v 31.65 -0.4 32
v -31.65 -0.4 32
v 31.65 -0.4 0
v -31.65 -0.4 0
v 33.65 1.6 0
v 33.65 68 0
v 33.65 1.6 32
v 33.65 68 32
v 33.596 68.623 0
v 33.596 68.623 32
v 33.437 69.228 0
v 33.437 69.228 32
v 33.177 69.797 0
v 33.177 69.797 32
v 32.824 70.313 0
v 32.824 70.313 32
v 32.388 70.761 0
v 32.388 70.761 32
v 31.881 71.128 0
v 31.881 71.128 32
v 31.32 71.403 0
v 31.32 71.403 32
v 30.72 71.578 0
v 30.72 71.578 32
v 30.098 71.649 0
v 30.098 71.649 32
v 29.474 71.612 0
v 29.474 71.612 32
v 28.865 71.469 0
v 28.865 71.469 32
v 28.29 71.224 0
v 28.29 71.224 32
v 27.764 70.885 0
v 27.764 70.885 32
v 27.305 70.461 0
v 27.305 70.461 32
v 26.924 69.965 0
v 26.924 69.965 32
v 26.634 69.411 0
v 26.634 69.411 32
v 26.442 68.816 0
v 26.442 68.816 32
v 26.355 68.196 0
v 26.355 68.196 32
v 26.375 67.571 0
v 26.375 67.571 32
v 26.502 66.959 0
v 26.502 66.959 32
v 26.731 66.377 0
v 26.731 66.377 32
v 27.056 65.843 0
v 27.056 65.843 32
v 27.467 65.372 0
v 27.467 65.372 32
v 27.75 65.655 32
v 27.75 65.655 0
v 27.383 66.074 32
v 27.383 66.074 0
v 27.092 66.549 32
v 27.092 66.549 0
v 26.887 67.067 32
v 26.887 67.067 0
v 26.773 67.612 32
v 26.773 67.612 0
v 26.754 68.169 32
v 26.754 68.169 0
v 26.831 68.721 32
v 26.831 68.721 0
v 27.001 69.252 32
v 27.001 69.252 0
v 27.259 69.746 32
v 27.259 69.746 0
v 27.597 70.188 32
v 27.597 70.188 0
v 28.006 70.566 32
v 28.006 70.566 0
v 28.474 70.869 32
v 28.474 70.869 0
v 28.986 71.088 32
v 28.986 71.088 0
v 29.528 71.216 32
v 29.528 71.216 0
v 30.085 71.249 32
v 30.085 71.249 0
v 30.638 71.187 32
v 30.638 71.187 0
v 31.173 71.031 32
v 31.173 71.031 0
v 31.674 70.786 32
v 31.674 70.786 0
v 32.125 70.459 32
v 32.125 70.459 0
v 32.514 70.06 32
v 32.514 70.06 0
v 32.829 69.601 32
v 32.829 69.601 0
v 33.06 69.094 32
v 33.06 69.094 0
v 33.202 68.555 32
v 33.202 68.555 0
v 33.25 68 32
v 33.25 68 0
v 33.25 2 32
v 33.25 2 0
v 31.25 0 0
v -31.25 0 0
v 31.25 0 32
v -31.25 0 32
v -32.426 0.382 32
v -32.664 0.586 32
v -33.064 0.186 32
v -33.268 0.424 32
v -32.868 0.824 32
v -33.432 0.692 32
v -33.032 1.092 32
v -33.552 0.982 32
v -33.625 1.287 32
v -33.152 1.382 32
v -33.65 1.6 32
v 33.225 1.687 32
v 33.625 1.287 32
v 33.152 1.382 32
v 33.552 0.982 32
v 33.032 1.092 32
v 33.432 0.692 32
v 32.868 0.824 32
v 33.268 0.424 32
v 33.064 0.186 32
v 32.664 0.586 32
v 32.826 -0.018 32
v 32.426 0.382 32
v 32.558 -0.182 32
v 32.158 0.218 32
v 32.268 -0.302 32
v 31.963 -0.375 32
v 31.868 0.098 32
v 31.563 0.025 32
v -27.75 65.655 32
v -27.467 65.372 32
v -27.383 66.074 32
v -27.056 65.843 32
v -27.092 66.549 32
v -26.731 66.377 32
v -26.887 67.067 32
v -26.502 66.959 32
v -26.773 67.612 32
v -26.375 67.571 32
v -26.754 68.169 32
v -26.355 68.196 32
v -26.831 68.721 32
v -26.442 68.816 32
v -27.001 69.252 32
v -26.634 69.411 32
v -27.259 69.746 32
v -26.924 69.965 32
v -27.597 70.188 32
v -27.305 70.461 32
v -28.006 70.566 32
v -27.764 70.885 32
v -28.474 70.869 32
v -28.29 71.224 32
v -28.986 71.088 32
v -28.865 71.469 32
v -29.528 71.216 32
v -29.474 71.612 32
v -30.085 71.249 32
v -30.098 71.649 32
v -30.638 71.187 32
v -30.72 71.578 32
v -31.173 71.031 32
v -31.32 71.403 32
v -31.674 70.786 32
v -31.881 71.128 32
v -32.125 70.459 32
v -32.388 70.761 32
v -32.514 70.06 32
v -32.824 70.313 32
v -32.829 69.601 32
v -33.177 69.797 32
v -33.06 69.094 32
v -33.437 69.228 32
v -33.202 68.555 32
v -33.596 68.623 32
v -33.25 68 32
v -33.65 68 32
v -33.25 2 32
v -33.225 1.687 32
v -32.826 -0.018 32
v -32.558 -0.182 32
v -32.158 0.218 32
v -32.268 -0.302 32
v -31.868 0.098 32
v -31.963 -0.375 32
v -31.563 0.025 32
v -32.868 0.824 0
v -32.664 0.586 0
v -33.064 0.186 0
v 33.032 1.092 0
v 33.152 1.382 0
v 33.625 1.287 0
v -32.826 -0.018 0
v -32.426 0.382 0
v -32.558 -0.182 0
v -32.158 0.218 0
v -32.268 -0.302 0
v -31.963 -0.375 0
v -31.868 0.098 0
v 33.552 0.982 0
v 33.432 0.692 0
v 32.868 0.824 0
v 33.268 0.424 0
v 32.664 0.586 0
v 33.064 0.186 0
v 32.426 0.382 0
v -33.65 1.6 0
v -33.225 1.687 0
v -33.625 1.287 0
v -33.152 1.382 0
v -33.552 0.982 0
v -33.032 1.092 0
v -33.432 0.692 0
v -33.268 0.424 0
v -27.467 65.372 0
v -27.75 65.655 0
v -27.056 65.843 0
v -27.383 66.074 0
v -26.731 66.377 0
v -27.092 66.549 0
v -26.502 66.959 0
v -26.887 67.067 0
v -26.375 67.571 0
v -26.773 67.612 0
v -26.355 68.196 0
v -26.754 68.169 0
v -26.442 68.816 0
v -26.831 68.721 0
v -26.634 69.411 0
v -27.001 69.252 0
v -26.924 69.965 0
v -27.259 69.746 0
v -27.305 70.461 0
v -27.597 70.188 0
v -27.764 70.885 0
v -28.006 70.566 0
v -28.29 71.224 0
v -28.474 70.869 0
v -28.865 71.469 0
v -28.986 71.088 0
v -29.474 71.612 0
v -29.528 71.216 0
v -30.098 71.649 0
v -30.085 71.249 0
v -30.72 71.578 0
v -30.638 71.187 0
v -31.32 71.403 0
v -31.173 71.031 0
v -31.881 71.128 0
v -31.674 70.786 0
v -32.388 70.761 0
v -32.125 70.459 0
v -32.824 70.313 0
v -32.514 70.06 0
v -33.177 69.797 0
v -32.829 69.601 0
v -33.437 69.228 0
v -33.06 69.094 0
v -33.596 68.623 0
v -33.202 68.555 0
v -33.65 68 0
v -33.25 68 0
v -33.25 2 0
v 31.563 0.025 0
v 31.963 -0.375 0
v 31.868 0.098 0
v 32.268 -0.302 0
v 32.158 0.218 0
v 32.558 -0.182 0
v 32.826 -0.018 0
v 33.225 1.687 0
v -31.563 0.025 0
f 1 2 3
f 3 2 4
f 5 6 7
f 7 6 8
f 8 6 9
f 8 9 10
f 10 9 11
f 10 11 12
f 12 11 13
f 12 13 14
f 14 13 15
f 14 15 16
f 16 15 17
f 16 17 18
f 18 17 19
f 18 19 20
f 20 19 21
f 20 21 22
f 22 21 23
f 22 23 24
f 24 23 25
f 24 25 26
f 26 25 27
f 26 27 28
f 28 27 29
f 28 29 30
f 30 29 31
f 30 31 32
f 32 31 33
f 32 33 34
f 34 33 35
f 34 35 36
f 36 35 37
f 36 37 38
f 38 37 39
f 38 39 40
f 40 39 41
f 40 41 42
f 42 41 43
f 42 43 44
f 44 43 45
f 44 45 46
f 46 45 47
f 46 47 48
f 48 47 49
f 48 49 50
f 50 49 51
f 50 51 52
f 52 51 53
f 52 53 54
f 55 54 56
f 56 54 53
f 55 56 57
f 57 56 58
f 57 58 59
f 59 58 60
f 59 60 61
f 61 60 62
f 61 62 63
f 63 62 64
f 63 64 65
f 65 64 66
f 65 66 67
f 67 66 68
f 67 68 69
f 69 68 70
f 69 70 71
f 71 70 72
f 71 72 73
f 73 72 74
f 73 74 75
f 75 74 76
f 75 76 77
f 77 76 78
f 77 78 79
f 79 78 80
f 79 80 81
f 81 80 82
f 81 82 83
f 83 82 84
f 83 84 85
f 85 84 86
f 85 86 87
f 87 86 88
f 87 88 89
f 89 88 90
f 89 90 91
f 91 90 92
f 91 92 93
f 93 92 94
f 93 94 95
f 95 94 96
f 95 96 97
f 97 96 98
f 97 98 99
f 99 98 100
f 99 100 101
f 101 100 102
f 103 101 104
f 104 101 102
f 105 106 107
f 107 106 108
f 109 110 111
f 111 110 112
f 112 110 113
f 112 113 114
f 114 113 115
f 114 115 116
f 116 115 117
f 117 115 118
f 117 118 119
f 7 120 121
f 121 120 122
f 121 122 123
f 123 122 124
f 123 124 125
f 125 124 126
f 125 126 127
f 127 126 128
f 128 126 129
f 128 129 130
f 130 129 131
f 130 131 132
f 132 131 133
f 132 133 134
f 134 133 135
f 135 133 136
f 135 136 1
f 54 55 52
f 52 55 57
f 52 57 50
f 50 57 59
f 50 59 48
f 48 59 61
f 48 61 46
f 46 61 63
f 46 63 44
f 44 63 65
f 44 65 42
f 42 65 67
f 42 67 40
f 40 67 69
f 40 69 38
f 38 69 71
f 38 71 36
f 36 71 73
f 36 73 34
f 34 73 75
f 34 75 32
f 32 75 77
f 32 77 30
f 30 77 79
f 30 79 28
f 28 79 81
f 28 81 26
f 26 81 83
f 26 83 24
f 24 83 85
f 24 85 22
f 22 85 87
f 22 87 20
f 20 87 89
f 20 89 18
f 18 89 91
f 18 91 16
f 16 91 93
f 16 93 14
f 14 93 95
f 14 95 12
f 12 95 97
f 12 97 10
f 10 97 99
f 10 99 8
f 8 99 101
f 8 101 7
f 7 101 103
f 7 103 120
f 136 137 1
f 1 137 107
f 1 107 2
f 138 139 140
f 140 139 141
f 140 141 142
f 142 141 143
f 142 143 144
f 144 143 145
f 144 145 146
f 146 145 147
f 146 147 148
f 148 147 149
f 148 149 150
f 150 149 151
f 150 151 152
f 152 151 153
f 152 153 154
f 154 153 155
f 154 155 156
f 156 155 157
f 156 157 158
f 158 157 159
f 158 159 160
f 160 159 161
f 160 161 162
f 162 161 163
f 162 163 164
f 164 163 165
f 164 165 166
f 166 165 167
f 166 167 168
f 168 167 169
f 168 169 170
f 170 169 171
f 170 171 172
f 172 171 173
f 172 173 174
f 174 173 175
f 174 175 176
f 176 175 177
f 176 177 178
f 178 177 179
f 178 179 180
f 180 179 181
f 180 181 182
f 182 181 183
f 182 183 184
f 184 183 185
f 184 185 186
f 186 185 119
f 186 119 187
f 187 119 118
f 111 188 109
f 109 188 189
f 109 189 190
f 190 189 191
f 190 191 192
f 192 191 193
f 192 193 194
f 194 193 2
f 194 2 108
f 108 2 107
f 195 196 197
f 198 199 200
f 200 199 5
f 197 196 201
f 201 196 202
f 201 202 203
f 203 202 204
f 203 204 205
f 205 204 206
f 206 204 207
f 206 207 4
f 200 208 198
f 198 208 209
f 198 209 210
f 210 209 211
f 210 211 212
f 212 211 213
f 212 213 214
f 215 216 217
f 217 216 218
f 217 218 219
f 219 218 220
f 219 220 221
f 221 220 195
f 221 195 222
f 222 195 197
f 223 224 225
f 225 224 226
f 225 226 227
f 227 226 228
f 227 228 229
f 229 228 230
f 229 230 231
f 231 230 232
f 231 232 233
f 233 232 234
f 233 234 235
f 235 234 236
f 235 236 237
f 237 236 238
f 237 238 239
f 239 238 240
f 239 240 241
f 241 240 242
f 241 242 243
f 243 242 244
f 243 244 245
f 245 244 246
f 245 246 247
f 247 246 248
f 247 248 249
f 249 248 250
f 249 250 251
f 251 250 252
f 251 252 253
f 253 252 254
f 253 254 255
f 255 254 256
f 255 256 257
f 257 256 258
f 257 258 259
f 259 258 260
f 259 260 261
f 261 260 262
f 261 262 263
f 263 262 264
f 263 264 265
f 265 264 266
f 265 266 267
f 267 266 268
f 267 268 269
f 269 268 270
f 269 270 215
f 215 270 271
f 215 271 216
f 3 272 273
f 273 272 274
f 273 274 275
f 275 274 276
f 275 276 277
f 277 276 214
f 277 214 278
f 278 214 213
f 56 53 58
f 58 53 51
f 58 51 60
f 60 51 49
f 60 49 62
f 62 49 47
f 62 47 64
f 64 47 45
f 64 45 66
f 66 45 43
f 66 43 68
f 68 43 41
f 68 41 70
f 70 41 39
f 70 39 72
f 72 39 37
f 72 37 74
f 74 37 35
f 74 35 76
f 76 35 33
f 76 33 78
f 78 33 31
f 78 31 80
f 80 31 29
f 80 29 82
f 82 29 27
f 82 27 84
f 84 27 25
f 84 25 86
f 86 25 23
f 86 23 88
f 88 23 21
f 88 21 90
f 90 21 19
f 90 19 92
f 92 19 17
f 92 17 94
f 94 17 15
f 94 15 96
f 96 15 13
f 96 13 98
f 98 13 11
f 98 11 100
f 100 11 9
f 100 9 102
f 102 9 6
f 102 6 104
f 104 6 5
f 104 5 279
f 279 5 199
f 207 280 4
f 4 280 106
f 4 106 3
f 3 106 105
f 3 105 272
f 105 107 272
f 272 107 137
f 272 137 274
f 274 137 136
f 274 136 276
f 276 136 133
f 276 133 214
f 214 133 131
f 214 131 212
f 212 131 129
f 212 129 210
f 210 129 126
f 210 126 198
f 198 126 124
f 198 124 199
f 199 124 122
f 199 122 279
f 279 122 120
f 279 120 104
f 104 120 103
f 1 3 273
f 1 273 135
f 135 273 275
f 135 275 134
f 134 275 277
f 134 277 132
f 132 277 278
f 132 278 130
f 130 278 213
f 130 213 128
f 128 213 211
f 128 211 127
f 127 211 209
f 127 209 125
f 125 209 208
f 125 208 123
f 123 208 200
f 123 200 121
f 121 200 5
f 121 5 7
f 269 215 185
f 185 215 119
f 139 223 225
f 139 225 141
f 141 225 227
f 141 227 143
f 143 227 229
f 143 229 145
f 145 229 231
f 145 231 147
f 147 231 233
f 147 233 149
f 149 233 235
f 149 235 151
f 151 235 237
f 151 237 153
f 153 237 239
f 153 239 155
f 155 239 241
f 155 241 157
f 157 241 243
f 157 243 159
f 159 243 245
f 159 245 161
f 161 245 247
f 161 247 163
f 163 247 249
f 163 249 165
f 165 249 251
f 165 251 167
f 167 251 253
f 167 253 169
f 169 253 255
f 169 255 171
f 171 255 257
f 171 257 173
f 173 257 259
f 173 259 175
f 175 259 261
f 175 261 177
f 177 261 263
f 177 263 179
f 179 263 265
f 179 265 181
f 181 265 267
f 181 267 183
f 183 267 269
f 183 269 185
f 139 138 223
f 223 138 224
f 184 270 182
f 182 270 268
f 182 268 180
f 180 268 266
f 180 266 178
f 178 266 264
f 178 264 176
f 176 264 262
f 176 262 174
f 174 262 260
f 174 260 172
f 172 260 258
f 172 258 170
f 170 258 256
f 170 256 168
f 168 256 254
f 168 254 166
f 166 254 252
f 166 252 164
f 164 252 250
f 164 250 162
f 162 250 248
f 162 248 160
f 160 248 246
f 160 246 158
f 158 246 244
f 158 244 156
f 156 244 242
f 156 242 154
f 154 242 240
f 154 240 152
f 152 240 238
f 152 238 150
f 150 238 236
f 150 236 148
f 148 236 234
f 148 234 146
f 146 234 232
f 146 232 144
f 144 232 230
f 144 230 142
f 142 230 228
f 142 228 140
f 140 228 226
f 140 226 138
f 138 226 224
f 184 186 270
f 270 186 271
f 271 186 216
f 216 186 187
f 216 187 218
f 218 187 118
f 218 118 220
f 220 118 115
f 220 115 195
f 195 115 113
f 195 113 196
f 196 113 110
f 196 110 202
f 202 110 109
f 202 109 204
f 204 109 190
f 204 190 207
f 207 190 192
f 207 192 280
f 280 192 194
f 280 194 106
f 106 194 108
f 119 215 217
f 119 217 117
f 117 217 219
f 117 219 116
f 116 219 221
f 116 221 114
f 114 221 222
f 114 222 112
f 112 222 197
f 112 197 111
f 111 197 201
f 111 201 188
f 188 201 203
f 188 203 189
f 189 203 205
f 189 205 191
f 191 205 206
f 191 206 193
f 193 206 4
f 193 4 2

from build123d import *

# Parameters (mm, degrees)
BOSS_EXTRU_2_DEPTH = 32
CONG_2_R           = 2


with BuildPart() as part:
    # Esquisse1 → Boss.-Extru.2 (new body)
    with BuildSketch(Plane.XY):
        with BuildLine():
            Line((33.25, 68), (33.25, 34))
            Line((33.25, 34), (33.25, 0))
            Line((33.25, 0), (0, 0))
            Line((0, 0), (0, -0.4))
            Line((0, -0.4), (33.65, -0.4))
            Line((33.65, -0.4), (33.65, 34))
            Line((33.65, 34), (33.65, 68))
            ThreePointArc((33.65, 68), (28.572164781, 71.359134798), (27.46710324, 65.37189536))
            Line((27.46710324, 65.37189536), (27.75, 65.65479212))
            ThreePointArc((27.75, 65.65479212), (28.725245122, 70.989565186), (33.25, 68))
        make_face()
    extrude(amount=BOSS_EXTRU_2_DEPTH)

    # Congé2
    cong_2_edges = [part.edges().sort_by_distance(p)[0] for p in [
        (33.25, 0, 16),
        (33.65, -0.4, 16),
    ]]
    fillet(cong_2_edges, radius=CONG_2_R)

    # Symétrie2: part across plane


with BuildPart() as part_1:
    add(part.part)
    add(part.part.mirror(Plane(origin=(0, -0.4, 32), x_dir=(0, 0, 1), z_dir=(1, 0, 0))))


solid = part_1.part
